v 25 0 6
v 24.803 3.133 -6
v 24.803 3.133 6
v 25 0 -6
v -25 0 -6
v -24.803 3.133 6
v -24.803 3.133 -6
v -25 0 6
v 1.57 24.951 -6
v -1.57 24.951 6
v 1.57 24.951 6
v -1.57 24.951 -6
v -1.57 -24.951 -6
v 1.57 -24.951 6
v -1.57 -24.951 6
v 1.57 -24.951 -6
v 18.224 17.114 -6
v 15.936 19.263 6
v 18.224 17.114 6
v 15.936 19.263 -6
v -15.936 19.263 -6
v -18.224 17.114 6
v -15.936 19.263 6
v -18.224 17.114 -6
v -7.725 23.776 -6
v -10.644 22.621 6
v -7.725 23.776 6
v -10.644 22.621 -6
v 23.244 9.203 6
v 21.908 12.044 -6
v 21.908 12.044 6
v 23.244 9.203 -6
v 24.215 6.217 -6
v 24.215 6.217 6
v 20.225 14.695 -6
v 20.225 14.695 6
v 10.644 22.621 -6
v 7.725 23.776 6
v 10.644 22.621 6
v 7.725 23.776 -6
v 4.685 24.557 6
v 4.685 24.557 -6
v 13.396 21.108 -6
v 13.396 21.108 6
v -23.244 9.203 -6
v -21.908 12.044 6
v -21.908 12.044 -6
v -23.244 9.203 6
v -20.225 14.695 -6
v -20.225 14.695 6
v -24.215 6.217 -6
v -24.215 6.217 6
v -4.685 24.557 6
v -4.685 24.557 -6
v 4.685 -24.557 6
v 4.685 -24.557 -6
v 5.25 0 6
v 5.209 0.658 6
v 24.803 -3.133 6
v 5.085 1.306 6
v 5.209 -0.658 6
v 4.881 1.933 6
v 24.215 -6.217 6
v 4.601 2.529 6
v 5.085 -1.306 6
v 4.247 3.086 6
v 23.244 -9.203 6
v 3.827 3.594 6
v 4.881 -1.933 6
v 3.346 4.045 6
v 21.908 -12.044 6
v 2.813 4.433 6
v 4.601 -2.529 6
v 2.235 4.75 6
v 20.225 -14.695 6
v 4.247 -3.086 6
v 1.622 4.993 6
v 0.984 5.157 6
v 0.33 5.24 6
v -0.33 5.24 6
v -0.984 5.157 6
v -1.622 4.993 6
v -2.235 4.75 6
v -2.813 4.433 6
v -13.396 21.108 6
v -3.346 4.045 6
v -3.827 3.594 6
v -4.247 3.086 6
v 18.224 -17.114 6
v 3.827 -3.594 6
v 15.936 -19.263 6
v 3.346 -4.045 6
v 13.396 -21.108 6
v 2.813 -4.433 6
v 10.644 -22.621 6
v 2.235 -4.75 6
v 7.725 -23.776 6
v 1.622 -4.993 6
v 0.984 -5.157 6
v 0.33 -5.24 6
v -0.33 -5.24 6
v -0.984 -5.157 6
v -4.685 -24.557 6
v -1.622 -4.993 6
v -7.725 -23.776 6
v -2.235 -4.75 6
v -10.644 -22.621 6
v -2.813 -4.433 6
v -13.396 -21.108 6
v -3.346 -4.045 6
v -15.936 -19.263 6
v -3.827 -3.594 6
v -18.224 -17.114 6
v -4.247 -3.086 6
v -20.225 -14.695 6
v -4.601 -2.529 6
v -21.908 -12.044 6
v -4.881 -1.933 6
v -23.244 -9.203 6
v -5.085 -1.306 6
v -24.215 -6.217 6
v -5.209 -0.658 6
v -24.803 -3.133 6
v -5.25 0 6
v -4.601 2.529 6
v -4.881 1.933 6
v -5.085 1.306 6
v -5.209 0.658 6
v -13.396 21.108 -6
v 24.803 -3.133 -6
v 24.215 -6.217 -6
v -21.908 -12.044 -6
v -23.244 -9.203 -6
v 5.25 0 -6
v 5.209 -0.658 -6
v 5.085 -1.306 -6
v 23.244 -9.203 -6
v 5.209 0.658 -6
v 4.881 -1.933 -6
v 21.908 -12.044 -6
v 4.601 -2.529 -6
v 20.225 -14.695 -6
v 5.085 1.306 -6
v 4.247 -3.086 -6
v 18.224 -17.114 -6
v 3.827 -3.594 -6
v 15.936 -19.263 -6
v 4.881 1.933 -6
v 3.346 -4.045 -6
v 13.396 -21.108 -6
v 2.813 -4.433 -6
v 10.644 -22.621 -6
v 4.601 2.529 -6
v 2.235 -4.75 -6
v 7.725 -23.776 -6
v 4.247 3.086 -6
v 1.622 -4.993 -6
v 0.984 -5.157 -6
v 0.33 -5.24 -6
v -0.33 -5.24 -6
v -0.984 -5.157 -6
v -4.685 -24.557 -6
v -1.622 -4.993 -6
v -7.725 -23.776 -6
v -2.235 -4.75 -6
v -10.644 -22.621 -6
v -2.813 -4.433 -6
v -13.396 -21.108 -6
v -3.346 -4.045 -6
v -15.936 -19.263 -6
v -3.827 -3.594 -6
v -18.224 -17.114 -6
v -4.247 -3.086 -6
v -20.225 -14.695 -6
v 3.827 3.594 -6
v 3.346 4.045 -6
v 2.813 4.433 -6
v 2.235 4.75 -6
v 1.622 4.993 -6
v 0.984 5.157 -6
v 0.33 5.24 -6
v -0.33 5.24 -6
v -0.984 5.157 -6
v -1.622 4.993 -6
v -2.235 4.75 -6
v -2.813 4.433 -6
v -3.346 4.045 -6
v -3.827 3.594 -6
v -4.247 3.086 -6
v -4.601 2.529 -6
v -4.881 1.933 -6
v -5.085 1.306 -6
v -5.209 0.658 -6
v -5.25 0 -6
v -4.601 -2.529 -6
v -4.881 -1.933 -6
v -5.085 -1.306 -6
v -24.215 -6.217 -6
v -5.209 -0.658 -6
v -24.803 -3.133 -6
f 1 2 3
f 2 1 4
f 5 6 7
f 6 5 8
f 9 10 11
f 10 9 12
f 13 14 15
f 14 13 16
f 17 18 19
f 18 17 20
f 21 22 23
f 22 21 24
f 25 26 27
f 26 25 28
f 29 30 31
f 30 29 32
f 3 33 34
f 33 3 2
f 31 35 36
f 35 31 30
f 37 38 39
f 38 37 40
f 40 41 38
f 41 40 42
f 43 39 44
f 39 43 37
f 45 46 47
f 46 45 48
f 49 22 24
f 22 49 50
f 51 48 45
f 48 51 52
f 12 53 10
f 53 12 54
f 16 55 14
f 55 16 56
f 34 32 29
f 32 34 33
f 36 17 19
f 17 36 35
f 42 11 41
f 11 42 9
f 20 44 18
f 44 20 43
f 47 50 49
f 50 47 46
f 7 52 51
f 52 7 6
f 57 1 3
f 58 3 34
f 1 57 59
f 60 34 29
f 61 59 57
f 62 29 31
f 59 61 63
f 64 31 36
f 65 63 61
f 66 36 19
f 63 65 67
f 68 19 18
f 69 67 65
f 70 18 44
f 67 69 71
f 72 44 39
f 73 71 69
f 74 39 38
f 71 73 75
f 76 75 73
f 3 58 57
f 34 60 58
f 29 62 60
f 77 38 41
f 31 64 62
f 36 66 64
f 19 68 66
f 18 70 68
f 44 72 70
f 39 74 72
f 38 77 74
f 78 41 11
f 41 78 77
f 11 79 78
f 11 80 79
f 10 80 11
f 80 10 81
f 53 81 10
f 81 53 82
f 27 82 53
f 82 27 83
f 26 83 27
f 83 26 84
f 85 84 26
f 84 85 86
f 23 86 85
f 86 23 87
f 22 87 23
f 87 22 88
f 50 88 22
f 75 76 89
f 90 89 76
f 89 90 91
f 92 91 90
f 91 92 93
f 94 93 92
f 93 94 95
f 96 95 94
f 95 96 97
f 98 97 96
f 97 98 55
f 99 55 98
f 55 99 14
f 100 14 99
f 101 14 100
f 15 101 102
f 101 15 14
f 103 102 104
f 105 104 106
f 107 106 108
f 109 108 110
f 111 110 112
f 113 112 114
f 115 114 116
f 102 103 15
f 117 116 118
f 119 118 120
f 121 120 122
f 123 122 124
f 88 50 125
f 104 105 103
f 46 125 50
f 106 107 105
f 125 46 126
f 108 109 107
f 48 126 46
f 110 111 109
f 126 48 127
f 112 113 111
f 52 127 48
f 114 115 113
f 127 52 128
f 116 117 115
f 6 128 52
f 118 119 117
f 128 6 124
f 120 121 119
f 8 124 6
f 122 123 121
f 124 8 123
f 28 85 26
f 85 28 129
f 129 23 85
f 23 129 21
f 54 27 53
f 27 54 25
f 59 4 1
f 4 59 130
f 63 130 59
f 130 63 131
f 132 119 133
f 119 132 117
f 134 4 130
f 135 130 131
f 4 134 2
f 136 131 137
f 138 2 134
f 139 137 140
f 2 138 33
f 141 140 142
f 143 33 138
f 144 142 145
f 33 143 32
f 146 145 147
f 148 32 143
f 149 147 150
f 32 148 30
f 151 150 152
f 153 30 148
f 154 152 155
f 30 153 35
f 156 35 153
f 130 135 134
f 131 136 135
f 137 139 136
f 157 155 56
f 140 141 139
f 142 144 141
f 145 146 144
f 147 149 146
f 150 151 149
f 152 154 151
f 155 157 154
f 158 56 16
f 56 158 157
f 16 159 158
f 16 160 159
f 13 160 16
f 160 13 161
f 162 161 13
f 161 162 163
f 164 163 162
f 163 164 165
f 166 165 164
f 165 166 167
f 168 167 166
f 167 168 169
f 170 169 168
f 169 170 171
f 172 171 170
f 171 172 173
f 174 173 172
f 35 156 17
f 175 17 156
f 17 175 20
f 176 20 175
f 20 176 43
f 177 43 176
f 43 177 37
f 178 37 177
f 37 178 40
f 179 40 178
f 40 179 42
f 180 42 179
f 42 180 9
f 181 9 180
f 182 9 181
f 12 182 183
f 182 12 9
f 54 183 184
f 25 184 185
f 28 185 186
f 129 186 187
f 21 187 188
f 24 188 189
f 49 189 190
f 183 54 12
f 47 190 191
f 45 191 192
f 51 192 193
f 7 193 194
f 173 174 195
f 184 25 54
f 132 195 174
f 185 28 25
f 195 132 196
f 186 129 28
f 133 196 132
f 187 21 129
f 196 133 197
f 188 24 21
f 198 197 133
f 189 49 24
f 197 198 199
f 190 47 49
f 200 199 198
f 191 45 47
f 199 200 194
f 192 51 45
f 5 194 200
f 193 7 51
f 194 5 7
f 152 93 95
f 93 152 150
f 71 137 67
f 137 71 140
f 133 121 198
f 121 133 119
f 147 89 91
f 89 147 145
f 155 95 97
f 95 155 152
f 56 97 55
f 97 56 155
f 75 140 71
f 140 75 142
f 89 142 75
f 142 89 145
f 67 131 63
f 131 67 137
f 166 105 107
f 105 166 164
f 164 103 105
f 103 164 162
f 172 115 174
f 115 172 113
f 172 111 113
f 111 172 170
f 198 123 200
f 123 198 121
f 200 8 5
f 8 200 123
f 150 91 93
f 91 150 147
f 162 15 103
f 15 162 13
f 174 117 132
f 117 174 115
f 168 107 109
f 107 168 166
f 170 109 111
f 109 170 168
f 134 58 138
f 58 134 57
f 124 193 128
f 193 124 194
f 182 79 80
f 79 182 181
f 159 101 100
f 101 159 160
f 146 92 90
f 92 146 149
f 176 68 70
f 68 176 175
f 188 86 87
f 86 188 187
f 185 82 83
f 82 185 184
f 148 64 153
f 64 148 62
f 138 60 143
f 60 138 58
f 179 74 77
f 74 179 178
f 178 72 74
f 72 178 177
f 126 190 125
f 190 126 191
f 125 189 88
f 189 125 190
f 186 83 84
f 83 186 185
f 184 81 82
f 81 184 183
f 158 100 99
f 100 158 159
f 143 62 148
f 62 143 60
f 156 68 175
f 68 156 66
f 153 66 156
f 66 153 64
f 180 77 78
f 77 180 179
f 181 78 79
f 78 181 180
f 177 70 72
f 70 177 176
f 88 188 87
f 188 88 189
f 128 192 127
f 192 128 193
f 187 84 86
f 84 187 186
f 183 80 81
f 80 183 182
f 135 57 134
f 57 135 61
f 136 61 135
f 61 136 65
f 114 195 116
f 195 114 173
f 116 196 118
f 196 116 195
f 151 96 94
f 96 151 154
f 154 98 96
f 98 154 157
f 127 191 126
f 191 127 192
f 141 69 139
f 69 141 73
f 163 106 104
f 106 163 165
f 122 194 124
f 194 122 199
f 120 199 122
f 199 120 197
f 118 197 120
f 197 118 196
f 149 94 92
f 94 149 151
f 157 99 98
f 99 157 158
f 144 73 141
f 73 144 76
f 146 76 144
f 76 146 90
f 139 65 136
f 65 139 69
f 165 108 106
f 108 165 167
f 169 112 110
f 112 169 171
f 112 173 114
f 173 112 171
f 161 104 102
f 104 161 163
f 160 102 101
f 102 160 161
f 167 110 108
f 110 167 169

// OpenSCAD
$fn = 50;


difference() {
	union() {
		translate(v = [0, 0, -6.0000000000]) {
			cylinder(h = 12, r = 25.0000000000);
		}
	}
	union() {
		translate(v = [0, 0, -100.0000000000]) {
			cylinder(h = 200, r = 5.2500000000);
		}
	}
}
